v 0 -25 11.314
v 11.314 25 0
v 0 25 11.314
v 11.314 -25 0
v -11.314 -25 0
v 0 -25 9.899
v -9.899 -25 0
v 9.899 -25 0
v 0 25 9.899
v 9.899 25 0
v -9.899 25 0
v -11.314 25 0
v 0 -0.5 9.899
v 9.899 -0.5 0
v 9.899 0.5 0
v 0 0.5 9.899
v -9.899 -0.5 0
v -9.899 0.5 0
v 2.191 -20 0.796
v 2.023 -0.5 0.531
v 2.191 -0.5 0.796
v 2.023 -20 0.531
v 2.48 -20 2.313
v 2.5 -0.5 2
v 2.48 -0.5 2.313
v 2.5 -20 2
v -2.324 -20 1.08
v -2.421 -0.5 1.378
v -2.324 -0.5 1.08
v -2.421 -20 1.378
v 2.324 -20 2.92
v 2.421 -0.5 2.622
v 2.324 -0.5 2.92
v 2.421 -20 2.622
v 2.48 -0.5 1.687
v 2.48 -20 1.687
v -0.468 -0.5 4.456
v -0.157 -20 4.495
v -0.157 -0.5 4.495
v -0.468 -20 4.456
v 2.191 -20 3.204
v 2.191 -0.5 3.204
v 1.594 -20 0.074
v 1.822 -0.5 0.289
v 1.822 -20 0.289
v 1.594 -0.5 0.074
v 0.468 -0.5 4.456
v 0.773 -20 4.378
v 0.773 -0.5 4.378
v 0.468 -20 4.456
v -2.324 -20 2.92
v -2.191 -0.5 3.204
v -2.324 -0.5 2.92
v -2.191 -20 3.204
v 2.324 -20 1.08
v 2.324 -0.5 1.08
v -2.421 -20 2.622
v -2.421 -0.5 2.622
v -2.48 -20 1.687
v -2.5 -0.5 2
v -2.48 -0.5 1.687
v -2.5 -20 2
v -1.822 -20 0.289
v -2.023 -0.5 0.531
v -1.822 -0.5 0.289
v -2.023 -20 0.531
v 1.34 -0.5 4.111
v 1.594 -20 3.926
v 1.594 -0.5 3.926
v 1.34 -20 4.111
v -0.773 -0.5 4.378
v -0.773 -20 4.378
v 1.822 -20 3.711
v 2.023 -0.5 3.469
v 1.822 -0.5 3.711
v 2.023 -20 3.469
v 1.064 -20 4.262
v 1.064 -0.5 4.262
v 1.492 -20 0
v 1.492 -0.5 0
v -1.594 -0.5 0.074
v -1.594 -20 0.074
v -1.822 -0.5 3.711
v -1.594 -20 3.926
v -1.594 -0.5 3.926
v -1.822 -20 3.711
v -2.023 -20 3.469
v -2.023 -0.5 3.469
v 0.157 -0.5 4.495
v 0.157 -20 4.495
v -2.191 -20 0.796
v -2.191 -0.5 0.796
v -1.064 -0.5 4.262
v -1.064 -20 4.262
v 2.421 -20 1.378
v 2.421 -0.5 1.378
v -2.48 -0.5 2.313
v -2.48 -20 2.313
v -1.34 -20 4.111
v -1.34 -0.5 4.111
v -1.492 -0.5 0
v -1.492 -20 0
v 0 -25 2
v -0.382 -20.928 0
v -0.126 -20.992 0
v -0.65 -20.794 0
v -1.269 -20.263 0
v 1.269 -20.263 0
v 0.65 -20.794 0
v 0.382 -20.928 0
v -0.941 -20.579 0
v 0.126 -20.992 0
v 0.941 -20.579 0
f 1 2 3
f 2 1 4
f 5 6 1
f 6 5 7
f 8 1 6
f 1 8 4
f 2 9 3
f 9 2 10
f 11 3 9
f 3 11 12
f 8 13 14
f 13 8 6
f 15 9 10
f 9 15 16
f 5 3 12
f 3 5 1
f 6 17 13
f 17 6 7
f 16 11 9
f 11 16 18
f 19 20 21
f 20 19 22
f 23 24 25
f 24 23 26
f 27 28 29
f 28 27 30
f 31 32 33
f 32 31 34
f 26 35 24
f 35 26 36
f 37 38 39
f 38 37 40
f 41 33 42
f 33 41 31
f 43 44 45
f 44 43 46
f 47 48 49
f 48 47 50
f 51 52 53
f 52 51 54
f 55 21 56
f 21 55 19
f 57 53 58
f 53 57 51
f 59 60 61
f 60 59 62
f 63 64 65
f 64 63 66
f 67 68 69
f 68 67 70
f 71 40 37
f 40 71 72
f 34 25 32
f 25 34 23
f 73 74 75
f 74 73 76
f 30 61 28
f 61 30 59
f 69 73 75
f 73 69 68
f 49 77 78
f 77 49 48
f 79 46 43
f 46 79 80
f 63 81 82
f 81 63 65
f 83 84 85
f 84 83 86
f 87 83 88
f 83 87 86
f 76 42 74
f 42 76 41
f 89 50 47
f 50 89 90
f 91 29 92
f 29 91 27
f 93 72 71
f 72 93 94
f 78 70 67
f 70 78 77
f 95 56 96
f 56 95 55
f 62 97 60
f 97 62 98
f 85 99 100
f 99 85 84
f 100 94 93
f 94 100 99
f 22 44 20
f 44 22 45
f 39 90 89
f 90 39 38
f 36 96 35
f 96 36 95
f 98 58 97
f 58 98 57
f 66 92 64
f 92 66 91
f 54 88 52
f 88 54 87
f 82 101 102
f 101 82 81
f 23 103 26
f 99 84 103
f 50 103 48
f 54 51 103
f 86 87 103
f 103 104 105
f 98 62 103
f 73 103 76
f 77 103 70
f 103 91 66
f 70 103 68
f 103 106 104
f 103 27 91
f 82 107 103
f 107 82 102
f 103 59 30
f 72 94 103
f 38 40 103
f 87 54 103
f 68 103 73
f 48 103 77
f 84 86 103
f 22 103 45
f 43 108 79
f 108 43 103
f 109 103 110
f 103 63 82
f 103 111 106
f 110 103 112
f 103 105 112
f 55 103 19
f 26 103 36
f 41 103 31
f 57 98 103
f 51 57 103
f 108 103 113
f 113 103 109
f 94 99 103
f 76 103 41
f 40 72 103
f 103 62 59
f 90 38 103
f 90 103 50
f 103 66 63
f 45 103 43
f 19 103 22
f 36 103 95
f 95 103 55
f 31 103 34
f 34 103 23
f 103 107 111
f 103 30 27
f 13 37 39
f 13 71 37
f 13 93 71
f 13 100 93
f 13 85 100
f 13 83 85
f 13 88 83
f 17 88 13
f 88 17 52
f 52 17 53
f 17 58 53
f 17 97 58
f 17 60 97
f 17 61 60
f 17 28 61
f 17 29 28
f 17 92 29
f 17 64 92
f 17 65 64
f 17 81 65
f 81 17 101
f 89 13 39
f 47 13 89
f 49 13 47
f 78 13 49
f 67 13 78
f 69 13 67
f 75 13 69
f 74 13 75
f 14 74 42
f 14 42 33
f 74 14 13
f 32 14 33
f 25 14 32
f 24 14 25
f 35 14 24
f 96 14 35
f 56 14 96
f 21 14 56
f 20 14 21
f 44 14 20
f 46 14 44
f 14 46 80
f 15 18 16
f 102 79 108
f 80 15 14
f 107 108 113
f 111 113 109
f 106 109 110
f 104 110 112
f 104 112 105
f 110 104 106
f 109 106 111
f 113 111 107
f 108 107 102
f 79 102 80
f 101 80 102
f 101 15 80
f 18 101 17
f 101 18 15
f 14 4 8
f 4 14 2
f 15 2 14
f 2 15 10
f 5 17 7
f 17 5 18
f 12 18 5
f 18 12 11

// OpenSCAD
// Cardboard Box Stacker (Remixed in OpenSCAD for printability) 
// Original Design By UnleashSpirit and Wolfcraft In https://www.thingiverse.com/thing:3331874
// Redesign By Brian Khuu 2024 for easier printability and parametric capability

$fn=50;

stacker_thickness = 1;
stacker_flange = 15;
stacker_height = 50;

pole_dia = 5;

rotate([90,0,0])
intersection()
{
    union()
    {
        rotate([0,0,45])
        {
            translate([stacker_flange/2, stacker_thickness/2-1/2, 0])
                cube([stacker_thickness, stacker_flange+1, stacker_height], center=true);
            translate([stacker_thickness/2-1/2, stacker_flange/2, 0])
                cube([stacker_flange+1, stacker_thickness, stacker_height], center=true);
        }

        hull()
        rotate([0,0,45])
        {
            translate([stacker_flange/2, stacker_thickness/2-1/2, 0])
                cube([stacker_thickness, stacker_flange+1, 1], center=true);
            translate([stacker_thickness/2-1/2, stacker_flange/2, 0])
                cube([stacker_flange+1, stacker_thickness, 1], center=true);
        }

        translate([0,2,0])
        {
            cylinder(d=pole_dia, h=stacker_height/2-pole_dia);
            translate([0,0,stacker_height/2-pole_dia])
                cylinder(d1=pole_dia,d2=0, h=pole_dia);
        }
    }
    
   translate([0,stacker_flange/2,0])
    cube([stacker_flange*2,stacker_flange,stacker_height], center=true);
}
